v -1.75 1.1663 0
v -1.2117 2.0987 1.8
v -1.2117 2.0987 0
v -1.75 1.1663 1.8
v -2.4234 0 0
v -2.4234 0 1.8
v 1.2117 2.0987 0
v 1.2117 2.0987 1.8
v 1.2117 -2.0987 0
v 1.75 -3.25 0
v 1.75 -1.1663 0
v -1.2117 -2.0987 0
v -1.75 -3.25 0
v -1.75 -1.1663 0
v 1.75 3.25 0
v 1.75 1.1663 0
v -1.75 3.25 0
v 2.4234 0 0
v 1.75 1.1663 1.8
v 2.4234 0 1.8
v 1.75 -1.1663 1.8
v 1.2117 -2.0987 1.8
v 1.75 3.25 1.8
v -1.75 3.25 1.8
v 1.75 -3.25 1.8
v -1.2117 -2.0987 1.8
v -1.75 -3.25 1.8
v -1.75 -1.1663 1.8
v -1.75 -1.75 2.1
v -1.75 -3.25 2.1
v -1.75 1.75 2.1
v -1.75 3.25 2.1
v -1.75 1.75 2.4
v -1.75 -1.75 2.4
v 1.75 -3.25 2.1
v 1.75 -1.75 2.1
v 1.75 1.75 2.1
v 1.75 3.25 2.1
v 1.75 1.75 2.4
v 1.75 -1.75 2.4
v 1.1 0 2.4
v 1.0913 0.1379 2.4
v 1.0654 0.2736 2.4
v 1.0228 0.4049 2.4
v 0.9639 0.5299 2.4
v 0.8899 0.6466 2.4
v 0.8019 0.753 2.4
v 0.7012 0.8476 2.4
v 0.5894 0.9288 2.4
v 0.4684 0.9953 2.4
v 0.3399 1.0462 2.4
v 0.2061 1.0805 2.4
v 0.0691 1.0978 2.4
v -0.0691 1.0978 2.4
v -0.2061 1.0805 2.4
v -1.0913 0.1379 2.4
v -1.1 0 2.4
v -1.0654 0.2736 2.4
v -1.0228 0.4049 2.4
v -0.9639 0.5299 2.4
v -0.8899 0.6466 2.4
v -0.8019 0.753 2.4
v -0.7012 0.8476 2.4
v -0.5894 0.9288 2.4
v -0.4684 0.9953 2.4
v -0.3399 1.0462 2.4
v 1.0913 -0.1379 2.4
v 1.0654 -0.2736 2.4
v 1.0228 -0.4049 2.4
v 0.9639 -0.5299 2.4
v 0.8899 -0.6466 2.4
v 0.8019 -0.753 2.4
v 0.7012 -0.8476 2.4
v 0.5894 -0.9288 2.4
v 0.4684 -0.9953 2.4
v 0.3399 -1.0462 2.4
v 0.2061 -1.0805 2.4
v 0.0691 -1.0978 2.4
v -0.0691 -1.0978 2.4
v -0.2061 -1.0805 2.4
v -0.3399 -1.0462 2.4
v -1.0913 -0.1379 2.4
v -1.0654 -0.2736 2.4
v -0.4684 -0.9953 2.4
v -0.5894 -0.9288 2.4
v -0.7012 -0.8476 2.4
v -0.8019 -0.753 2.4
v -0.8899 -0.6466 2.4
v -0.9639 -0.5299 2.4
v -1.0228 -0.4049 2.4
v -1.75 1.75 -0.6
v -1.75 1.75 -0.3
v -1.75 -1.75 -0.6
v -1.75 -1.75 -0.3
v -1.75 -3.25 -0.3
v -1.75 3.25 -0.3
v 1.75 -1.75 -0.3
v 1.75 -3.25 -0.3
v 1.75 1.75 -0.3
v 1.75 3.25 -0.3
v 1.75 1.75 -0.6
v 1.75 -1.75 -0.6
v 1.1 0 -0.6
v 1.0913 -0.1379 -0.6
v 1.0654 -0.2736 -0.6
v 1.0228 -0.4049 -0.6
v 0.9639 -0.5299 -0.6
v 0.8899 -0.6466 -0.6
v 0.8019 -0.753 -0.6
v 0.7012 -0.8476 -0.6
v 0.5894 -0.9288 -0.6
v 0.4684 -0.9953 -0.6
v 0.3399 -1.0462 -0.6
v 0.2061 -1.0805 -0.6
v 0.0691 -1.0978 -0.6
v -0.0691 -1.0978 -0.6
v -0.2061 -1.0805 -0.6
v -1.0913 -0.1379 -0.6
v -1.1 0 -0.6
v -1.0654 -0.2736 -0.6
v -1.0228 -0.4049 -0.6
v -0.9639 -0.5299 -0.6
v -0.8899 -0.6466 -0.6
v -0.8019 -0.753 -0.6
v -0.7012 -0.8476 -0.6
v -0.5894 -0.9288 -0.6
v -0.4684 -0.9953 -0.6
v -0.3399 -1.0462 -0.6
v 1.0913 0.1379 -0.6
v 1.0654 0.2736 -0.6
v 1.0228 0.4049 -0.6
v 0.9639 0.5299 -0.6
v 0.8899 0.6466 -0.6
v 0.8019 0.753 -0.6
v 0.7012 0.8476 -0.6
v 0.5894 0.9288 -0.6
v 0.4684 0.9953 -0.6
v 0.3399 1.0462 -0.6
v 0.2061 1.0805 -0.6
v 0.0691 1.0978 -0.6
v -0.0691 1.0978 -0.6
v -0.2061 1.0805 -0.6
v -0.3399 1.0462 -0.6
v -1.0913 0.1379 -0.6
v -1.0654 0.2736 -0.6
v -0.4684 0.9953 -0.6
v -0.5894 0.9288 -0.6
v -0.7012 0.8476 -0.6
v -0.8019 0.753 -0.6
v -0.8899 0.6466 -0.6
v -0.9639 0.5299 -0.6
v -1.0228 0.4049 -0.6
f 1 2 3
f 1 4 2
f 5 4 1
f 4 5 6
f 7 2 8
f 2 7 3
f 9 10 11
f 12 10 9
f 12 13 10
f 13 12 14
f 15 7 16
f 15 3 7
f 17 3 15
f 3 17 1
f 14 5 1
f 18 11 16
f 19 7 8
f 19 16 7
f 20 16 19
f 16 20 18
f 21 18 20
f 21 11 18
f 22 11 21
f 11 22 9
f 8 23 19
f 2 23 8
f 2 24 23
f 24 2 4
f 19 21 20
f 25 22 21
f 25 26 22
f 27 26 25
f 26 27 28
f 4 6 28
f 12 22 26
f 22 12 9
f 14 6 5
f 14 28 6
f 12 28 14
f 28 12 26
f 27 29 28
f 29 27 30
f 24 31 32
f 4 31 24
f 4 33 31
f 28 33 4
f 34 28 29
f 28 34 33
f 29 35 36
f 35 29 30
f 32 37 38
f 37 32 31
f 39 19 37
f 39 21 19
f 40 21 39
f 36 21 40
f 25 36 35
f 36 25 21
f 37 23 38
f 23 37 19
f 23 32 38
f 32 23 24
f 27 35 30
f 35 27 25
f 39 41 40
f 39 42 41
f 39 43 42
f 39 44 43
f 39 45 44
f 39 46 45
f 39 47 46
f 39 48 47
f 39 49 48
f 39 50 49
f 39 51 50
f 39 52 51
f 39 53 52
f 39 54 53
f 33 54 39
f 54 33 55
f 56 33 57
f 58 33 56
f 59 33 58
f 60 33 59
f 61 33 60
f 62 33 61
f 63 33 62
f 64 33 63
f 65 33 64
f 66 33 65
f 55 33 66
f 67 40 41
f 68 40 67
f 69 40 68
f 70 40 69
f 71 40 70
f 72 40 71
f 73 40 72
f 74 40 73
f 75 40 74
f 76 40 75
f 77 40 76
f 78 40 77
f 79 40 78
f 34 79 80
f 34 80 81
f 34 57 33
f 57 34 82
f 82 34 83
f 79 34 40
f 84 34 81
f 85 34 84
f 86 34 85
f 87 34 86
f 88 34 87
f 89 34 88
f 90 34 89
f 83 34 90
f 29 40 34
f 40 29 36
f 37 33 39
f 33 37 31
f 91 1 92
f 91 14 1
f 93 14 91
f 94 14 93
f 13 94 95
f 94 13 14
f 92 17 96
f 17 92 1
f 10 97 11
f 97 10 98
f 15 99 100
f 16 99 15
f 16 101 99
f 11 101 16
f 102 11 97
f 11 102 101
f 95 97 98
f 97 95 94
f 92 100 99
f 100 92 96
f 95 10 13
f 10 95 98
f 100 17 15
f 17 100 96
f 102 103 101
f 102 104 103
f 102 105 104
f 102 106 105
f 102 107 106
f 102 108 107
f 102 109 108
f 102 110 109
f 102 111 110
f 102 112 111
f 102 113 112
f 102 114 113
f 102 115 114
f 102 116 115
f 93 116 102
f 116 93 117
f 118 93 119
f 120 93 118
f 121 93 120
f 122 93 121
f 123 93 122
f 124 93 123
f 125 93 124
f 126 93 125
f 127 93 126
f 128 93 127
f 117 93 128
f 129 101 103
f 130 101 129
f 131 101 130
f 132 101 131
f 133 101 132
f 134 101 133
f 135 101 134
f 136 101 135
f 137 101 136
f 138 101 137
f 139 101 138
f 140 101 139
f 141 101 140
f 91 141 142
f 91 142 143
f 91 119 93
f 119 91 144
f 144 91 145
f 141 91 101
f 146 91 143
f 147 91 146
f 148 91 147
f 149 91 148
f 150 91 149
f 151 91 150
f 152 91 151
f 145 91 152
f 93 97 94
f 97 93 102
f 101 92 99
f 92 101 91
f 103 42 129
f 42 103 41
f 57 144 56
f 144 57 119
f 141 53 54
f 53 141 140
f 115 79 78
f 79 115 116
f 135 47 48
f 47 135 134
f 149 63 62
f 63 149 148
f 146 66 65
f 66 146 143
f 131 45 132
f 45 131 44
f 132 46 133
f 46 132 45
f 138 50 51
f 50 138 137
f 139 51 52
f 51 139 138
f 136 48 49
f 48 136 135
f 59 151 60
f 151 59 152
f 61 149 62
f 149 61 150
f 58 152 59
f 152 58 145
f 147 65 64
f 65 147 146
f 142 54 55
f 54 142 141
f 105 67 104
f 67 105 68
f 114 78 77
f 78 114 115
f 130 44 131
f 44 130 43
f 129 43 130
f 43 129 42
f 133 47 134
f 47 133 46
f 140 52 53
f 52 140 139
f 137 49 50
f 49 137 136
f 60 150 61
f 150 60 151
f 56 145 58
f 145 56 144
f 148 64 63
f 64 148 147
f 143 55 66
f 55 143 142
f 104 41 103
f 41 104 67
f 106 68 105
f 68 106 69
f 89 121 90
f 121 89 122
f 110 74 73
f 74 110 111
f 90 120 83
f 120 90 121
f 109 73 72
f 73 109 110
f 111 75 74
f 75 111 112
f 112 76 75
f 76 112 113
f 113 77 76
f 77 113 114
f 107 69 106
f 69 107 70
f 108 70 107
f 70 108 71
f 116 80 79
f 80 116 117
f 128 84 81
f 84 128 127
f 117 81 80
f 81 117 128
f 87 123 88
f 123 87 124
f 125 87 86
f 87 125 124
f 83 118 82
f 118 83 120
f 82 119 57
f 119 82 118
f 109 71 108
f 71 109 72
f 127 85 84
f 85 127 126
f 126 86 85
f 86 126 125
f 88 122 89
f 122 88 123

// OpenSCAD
$fn = 50;


difference() {
	union() {
		translate(v = [0, 0, 0]) {
			rotate(a = [0, 0, 0]) {
				translate(v = [0, 0, 0]) {
					rotate(a = [0, 0, 0]) {
						linear_extrude(height = 1.8000000000) {
							polygon(points = [[2.4234000000, 0.0000000000], [1.2117000000, 2.0987259635], [-1.2117000000, 2.0987259635], [-2.4234000000, 0.0000000000], [-1.2117000000, -2.0987259635], [1.2117000000, -2.0987259635]]);
						}
					}
				}
			}
		}
		#translate(v = [-1.7500000000, -3.2500000000, 1.8000000000]) {
			rotate(a = [0, 0, 0]) {
				cube(size = [3.5000000000, 6.5000000000, 0.3000000000]);
			}
		}
		#translate(v = [-1.7500000000, -1.7500000000, 2.1000000000]) {
			rotate(a = [0, 0, 0]) {
				cube(size = [3.5000000000, 3.5000000000, 0.3000000000]);
			}
		}
		#translate(v = [-1.7500000000, -3.2500000000, -0.3000000000]) {
			rotate(a = [0, 0, 0]) {
				cube(size = [3.5000000000, 6.5000000000, 0.3000000000]);
			}
		}
		#translate(v = [-1.7500000000, -1.7500000000, -0.6000000000]) {
			rotate(a = [0, 0, 0]) {
				cube(size = [3.5000000000, 3.5000000000, 0.3000000000]);
			}
		}
	}
	union() {
		translate(v = [0, 0, -10]) {
			rotate(a = [0, 0, 0]) {
				cylinder(h = 100, r = 1.1000000000);
			}
		}
	}
}
